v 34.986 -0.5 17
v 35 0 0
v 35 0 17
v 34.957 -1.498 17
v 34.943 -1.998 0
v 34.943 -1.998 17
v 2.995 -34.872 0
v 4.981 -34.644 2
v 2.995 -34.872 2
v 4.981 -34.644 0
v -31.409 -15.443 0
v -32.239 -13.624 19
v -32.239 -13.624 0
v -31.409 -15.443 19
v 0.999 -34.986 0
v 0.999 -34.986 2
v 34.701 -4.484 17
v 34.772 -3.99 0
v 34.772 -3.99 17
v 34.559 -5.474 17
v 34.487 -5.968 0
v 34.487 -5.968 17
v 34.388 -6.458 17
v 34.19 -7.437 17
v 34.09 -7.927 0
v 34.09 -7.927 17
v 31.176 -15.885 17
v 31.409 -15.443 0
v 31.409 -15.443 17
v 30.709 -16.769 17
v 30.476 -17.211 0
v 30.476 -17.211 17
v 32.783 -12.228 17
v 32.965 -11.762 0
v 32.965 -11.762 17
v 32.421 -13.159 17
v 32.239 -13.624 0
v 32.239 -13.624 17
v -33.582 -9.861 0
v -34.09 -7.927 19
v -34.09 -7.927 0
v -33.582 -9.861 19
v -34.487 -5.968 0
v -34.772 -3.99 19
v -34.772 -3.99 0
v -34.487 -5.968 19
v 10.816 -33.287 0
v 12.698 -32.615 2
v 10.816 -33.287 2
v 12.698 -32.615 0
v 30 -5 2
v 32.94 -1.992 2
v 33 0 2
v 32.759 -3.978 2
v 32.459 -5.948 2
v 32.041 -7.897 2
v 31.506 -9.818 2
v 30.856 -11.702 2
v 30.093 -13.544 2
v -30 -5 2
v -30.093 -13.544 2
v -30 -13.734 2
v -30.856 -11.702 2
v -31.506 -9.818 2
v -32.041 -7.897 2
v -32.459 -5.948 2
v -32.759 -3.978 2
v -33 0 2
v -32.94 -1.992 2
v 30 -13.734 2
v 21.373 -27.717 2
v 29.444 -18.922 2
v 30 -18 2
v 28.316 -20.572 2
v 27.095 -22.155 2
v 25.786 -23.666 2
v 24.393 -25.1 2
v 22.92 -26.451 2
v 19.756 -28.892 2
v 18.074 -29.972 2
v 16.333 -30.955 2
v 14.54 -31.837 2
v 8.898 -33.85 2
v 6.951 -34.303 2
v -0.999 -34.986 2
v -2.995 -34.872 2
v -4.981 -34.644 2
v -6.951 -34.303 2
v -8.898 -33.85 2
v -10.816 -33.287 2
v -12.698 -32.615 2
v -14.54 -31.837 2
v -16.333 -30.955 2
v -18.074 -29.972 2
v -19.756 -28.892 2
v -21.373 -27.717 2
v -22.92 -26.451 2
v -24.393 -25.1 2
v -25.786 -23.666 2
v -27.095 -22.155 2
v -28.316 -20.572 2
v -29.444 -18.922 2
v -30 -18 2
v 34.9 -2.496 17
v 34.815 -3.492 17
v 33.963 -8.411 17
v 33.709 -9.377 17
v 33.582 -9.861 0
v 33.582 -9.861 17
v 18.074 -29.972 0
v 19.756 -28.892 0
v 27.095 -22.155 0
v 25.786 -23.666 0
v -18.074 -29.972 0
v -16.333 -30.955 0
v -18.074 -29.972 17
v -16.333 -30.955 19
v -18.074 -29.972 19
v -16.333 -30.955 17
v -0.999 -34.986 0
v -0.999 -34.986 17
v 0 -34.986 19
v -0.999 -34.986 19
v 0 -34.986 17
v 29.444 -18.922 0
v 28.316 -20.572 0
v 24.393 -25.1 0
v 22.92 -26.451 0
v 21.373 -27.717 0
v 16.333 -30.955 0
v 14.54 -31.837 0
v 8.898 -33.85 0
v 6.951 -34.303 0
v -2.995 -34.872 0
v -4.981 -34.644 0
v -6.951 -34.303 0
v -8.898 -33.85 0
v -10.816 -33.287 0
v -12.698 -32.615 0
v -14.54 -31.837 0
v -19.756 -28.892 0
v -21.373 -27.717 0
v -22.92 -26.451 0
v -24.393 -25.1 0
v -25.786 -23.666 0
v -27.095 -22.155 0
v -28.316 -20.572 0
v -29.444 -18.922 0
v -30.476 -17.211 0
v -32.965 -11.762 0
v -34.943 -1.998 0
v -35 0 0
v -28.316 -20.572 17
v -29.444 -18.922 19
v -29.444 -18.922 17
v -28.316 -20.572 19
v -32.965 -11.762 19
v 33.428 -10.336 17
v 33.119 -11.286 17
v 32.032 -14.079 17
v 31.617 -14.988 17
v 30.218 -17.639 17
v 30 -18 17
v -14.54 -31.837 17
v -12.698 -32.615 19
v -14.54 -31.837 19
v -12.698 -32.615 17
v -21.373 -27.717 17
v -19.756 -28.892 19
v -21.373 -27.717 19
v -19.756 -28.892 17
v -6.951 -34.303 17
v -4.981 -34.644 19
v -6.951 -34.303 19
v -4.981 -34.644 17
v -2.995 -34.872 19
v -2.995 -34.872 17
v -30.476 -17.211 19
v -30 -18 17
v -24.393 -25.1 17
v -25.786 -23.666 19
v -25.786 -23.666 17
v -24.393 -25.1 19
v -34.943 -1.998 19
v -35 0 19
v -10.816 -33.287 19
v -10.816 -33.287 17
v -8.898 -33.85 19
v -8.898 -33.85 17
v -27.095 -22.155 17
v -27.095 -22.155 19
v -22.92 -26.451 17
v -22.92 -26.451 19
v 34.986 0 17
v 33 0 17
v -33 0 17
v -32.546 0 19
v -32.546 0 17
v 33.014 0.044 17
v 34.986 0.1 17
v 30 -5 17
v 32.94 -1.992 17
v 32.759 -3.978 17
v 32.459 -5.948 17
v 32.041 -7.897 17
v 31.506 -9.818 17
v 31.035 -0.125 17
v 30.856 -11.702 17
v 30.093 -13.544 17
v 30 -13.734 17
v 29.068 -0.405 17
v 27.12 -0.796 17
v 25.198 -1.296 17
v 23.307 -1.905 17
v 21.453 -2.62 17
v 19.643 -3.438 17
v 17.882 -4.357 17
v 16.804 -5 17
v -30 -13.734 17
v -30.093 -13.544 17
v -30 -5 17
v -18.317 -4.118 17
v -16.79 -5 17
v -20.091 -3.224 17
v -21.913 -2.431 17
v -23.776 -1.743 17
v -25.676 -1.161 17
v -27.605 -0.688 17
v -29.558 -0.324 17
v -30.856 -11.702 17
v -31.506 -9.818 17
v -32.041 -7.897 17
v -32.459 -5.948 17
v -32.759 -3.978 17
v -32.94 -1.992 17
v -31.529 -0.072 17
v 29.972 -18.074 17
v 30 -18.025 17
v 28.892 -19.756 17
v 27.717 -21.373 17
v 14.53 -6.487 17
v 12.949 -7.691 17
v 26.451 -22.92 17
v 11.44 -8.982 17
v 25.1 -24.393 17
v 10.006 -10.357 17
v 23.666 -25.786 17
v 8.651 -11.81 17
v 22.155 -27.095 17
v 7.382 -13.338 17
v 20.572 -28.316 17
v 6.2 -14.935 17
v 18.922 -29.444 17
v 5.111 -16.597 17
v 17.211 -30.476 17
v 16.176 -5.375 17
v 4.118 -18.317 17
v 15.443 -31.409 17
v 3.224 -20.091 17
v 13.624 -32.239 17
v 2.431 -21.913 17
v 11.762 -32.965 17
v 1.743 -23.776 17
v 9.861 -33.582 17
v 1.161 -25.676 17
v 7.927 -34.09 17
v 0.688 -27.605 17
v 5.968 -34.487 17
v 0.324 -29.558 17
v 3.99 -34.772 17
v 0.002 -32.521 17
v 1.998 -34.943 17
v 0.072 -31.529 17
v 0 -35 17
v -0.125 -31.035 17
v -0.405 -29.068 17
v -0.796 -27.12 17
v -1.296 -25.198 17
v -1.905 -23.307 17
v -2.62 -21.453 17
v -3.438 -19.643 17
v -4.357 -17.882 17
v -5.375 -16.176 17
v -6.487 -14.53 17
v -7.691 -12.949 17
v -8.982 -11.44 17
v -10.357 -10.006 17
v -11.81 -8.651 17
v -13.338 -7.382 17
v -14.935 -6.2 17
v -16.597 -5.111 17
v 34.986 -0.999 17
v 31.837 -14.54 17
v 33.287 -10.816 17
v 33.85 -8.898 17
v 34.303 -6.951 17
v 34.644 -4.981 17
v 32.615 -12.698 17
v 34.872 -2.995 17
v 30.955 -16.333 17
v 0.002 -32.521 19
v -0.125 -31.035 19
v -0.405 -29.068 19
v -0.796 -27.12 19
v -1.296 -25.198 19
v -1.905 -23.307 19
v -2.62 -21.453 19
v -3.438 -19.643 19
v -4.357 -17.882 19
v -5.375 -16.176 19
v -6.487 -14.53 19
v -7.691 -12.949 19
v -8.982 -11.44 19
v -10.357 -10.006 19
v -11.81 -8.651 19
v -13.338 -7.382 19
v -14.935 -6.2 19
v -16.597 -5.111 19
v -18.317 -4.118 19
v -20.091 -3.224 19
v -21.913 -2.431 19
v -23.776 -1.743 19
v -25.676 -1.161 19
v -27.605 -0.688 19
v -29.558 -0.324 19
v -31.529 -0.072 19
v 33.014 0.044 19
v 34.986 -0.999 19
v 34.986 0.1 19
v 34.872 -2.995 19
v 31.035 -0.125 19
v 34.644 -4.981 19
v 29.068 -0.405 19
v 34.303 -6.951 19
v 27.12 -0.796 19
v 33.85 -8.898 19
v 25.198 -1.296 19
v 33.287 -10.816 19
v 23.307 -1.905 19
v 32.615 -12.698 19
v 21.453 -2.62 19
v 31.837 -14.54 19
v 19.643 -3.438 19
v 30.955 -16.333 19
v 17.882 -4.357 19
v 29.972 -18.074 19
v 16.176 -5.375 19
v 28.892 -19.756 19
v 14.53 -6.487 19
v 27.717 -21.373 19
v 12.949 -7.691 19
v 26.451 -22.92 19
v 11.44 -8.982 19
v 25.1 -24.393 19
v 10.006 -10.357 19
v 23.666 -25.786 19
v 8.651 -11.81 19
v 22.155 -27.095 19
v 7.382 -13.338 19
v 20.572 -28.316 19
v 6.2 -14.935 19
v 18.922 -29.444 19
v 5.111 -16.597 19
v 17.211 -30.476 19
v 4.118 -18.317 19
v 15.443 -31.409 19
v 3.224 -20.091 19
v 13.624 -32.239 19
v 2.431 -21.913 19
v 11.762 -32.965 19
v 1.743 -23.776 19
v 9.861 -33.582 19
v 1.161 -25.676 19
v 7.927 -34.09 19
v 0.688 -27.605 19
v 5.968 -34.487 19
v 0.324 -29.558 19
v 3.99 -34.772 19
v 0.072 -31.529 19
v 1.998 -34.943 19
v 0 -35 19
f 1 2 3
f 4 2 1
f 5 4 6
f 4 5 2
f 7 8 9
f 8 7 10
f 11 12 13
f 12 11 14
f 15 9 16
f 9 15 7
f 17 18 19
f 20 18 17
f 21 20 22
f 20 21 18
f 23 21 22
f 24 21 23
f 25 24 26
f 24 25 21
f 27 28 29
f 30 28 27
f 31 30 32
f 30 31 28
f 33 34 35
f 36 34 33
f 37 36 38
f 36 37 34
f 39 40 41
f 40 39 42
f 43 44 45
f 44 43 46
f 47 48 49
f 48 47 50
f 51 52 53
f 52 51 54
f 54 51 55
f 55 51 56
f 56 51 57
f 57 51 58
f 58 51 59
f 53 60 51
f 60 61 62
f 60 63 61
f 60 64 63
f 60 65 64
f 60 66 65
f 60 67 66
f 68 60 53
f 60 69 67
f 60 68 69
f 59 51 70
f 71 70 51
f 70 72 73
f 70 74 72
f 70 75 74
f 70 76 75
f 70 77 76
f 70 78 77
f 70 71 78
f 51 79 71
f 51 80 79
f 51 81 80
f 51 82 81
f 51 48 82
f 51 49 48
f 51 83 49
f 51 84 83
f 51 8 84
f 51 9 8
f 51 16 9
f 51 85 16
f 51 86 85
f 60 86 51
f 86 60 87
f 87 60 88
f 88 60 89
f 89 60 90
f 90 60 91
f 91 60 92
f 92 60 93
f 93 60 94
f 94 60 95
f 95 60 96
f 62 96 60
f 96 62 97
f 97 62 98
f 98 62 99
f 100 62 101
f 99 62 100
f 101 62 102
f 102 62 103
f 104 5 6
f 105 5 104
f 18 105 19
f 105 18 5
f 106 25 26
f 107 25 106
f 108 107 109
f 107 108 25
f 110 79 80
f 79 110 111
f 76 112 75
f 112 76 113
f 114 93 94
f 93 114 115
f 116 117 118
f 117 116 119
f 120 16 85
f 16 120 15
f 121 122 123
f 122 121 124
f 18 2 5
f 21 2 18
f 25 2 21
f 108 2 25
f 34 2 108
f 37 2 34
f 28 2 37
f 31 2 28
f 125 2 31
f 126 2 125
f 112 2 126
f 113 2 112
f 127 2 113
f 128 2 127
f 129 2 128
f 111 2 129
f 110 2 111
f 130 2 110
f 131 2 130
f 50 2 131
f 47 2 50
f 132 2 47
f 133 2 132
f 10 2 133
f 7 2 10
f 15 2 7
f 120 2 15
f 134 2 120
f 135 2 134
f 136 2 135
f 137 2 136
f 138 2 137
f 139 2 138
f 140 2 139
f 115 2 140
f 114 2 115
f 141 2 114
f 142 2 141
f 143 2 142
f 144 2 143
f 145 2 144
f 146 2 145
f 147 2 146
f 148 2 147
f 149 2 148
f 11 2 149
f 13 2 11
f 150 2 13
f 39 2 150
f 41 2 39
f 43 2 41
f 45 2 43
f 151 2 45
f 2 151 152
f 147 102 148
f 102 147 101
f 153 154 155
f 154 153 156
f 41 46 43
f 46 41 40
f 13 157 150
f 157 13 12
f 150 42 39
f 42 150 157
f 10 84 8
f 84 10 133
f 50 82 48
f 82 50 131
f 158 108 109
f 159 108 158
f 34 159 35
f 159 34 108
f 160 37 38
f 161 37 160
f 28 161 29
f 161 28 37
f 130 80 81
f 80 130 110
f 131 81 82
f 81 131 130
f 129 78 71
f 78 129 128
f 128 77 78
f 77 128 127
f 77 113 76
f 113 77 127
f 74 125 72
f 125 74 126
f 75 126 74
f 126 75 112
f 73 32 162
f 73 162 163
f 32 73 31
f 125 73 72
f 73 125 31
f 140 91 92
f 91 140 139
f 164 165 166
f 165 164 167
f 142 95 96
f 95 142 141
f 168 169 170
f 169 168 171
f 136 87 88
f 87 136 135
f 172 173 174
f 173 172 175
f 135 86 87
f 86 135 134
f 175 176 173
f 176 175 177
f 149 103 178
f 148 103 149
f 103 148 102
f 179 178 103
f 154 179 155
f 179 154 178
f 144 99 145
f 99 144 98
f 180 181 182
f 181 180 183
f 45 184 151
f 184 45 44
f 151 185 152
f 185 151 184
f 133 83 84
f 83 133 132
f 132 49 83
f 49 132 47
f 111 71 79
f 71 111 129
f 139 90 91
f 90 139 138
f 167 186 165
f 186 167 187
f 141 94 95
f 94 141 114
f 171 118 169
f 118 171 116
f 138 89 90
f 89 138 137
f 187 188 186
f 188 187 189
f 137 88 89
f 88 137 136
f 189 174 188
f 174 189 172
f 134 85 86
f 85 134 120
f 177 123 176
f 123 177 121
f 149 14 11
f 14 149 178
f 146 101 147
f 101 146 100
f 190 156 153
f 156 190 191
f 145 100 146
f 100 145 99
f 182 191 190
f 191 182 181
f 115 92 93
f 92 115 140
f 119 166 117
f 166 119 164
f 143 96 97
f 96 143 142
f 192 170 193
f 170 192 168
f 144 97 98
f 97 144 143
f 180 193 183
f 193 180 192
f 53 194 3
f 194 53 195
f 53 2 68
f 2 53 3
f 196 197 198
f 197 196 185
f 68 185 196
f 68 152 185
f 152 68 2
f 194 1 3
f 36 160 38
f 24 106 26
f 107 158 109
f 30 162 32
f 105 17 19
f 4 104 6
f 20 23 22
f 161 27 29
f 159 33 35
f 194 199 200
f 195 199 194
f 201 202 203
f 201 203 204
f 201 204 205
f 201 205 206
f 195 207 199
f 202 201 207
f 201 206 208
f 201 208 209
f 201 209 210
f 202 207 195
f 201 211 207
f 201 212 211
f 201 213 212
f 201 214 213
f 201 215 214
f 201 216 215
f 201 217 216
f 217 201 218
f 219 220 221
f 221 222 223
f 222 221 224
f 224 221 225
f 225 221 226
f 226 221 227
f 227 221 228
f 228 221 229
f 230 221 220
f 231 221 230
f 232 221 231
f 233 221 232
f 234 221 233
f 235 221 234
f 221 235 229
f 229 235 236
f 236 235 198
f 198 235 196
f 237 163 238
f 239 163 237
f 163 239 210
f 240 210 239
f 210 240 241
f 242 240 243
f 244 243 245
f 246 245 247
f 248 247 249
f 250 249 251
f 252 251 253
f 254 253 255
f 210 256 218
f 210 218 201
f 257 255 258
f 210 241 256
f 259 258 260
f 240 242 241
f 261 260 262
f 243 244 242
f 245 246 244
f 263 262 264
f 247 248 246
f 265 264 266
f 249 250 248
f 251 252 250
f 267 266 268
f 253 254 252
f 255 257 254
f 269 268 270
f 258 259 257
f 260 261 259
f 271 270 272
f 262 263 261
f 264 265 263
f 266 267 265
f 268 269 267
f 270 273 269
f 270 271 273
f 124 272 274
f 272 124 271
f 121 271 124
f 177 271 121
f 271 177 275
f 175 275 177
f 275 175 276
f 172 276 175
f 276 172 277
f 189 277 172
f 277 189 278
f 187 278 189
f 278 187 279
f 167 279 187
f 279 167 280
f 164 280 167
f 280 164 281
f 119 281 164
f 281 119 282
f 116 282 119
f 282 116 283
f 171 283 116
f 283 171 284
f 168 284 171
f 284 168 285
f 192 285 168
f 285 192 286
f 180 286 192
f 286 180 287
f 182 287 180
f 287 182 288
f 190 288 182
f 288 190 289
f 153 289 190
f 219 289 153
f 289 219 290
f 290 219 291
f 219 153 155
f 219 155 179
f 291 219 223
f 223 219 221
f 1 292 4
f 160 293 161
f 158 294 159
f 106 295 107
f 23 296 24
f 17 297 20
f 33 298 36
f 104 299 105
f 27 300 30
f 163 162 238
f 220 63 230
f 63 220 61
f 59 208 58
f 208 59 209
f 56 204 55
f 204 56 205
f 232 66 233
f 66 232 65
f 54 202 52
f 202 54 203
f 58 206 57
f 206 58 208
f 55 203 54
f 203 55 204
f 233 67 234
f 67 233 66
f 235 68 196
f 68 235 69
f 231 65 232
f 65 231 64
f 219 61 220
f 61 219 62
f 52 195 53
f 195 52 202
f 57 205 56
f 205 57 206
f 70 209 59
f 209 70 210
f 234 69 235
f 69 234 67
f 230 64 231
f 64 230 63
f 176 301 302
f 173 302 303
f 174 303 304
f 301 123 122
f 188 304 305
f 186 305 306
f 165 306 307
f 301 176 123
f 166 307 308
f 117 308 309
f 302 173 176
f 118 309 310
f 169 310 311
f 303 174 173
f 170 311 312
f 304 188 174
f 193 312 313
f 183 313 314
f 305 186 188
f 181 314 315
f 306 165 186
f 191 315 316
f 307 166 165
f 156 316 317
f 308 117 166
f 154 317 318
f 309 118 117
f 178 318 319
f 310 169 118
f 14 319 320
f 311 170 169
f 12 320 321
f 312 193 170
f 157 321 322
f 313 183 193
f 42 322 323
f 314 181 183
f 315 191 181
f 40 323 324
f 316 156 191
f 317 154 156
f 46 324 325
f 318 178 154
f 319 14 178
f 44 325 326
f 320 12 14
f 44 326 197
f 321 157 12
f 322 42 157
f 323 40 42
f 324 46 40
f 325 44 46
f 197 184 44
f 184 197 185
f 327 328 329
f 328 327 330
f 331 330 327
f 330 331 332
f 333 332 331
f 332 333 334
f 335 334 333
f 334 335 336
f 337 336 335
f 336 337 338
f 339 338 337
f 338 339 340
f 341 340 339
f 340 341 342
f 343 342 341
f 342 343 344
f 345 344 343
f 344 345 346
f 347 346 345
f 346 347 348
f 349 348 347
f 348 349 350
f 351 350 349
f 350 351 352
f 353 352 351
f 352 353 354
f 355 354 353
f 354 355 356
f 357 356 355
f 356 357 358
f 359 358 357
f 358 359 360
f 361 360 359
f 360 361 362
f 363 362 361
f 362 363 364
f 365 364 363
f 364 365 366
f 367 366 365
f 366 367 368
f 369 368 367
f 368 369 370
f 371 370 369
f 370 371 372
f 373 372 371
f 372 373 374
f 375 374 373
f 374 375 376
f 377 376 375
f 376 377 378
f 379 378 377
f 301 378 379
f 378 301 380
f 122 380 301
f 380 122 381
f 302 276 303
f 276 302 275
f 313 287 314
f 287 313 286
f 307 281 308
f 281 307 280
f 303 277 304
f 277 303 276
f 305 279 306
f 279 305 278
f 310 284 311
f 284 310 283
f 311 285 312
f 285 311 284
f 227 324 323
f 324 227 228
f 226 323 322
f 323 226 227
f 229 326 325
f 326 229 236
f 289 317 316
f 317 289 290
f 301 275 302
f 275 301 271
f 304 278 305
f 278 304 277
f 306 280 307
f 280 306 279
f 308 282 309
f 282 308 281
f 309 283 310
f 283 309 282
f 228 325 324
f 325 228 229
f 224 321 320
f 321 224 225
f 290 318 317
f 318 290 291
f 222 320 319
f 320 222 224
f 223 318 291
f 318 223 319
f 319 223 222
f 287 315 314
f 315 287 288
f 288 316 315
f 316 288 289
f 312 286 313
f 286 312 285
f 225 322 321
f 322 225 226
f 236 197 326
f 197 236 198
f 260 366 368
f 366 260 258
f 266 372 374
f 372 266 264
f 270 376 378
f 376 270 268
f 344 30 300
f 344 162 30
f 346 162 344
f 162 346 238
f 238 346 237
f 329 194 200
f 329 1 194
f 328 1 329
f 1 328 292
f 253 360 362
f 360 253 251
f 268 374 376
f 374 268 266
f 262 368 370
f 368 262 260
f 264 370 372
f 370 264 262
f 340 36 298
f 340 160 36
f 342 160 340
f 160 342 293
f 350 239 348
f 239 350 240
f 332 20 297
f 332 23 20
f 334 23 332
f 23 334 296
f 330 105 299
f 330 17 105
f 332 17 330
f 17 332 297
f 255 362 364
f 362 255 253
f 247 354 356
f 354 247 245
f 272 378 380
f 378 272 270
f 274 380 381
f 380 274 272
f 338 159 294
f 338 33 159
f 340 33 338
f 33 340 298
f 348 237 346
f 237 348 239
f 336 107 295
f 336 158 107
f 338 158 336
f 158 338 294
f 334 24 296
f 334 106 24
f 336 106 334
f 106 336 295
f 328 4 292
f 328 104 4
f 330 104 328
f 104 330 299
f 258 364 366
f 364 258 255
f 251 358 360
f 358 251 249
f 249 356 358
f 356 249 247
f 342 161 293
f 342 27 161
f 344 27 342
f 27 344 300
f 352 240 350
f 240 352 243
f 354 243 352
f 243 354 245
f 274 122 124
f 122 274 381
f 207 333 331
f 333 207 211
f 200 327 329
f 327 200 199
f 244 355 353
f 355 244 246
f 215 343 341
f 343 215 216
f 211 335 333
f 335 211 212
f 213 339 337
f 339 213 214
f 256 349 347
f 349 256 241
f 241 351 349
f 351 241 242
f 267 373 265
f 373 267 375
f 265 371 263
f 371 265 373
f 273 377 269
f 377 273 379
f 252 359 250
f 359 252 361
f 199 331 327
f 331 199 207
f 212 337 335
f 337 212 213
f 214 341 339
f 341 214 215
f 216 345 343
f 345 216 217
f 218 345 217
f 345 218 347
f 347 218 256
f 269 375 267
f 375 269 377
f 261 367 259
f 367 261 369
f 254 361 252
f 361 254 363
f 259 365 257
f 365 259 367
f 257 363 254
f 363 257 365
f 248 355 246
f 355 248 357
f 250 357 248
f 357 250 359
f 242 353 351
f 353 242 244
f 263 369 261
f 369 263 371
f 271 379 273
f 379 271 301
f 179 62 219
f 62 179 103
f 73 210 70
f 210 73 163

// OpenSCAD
// -------------------------------------------------------------------------
// modules 
// -------------------------------------------------------------------------

module base(radius, height) {
    cylinder(h=height, r=radius);
}


module base_half_circle(radius, thickness, height) {
    difference() {
        base(radius, height);
        translate([-radius, 0, 0]) {
            cube([radius * 2, radius, height]);
        }
    }
}

module wall(radius, thickness, height) {
    difference(){
            base_half_circle(radius, thickness, height);
            base_half_circle(radius - thickness, thickness, height);
    };
}

module front_wall(radius, wall_thickness, height){
    translate([0, 0, height]){
        bumper(radius, wall_thickness);
        rotate(90){
            bumper(radius, wall_thickness);
        }
    }
}

module bumper(radius, wall_thickness) {
    intersection(){
        base_half_circle(radius, wall_thickness, wall_thickness);
        translate([-radius, -radius, 0]){
            base(radius + bumper_correction, wall_thickness);
        }
    }
}


module back_wall(radius, wall_thickness){
    base_half_circle(radius, wall_thickness, wall_thickness);
}

module body(radius, wall_thickness, height) {
    union(){
        back_wall(radius, wall_thickness);
        wall(radius, wall_thickness, height + wall_thickness);
        front_wall(radius, wall_thickness, height + wall_thickness);
    }
}

module filter_holder(radius, hole_half_size, height, wall_thickness) {
    difference(){
        body(radius, wall_thickness, height);
        translate([-hole_half_size, -radius, wall_thickness]){
            cube([2 * hole_half_size, hole_half_size, height]);
        }
    }
}

// -------------------------------------------------------------------------
// controls
// -------------------------------------------------------------------------

$fa=0.01;

// all units are in mm  
wall_thickness = 2;
radius = 35;
height = 15;
hole_half_size = 30;
bumper_correction = 0.1;


// -------------------------------------------------------------------------
// model 
// -------------------------------------------------------------------------
filter_holder(radius, hole_half_size, height, wall_thickness);
